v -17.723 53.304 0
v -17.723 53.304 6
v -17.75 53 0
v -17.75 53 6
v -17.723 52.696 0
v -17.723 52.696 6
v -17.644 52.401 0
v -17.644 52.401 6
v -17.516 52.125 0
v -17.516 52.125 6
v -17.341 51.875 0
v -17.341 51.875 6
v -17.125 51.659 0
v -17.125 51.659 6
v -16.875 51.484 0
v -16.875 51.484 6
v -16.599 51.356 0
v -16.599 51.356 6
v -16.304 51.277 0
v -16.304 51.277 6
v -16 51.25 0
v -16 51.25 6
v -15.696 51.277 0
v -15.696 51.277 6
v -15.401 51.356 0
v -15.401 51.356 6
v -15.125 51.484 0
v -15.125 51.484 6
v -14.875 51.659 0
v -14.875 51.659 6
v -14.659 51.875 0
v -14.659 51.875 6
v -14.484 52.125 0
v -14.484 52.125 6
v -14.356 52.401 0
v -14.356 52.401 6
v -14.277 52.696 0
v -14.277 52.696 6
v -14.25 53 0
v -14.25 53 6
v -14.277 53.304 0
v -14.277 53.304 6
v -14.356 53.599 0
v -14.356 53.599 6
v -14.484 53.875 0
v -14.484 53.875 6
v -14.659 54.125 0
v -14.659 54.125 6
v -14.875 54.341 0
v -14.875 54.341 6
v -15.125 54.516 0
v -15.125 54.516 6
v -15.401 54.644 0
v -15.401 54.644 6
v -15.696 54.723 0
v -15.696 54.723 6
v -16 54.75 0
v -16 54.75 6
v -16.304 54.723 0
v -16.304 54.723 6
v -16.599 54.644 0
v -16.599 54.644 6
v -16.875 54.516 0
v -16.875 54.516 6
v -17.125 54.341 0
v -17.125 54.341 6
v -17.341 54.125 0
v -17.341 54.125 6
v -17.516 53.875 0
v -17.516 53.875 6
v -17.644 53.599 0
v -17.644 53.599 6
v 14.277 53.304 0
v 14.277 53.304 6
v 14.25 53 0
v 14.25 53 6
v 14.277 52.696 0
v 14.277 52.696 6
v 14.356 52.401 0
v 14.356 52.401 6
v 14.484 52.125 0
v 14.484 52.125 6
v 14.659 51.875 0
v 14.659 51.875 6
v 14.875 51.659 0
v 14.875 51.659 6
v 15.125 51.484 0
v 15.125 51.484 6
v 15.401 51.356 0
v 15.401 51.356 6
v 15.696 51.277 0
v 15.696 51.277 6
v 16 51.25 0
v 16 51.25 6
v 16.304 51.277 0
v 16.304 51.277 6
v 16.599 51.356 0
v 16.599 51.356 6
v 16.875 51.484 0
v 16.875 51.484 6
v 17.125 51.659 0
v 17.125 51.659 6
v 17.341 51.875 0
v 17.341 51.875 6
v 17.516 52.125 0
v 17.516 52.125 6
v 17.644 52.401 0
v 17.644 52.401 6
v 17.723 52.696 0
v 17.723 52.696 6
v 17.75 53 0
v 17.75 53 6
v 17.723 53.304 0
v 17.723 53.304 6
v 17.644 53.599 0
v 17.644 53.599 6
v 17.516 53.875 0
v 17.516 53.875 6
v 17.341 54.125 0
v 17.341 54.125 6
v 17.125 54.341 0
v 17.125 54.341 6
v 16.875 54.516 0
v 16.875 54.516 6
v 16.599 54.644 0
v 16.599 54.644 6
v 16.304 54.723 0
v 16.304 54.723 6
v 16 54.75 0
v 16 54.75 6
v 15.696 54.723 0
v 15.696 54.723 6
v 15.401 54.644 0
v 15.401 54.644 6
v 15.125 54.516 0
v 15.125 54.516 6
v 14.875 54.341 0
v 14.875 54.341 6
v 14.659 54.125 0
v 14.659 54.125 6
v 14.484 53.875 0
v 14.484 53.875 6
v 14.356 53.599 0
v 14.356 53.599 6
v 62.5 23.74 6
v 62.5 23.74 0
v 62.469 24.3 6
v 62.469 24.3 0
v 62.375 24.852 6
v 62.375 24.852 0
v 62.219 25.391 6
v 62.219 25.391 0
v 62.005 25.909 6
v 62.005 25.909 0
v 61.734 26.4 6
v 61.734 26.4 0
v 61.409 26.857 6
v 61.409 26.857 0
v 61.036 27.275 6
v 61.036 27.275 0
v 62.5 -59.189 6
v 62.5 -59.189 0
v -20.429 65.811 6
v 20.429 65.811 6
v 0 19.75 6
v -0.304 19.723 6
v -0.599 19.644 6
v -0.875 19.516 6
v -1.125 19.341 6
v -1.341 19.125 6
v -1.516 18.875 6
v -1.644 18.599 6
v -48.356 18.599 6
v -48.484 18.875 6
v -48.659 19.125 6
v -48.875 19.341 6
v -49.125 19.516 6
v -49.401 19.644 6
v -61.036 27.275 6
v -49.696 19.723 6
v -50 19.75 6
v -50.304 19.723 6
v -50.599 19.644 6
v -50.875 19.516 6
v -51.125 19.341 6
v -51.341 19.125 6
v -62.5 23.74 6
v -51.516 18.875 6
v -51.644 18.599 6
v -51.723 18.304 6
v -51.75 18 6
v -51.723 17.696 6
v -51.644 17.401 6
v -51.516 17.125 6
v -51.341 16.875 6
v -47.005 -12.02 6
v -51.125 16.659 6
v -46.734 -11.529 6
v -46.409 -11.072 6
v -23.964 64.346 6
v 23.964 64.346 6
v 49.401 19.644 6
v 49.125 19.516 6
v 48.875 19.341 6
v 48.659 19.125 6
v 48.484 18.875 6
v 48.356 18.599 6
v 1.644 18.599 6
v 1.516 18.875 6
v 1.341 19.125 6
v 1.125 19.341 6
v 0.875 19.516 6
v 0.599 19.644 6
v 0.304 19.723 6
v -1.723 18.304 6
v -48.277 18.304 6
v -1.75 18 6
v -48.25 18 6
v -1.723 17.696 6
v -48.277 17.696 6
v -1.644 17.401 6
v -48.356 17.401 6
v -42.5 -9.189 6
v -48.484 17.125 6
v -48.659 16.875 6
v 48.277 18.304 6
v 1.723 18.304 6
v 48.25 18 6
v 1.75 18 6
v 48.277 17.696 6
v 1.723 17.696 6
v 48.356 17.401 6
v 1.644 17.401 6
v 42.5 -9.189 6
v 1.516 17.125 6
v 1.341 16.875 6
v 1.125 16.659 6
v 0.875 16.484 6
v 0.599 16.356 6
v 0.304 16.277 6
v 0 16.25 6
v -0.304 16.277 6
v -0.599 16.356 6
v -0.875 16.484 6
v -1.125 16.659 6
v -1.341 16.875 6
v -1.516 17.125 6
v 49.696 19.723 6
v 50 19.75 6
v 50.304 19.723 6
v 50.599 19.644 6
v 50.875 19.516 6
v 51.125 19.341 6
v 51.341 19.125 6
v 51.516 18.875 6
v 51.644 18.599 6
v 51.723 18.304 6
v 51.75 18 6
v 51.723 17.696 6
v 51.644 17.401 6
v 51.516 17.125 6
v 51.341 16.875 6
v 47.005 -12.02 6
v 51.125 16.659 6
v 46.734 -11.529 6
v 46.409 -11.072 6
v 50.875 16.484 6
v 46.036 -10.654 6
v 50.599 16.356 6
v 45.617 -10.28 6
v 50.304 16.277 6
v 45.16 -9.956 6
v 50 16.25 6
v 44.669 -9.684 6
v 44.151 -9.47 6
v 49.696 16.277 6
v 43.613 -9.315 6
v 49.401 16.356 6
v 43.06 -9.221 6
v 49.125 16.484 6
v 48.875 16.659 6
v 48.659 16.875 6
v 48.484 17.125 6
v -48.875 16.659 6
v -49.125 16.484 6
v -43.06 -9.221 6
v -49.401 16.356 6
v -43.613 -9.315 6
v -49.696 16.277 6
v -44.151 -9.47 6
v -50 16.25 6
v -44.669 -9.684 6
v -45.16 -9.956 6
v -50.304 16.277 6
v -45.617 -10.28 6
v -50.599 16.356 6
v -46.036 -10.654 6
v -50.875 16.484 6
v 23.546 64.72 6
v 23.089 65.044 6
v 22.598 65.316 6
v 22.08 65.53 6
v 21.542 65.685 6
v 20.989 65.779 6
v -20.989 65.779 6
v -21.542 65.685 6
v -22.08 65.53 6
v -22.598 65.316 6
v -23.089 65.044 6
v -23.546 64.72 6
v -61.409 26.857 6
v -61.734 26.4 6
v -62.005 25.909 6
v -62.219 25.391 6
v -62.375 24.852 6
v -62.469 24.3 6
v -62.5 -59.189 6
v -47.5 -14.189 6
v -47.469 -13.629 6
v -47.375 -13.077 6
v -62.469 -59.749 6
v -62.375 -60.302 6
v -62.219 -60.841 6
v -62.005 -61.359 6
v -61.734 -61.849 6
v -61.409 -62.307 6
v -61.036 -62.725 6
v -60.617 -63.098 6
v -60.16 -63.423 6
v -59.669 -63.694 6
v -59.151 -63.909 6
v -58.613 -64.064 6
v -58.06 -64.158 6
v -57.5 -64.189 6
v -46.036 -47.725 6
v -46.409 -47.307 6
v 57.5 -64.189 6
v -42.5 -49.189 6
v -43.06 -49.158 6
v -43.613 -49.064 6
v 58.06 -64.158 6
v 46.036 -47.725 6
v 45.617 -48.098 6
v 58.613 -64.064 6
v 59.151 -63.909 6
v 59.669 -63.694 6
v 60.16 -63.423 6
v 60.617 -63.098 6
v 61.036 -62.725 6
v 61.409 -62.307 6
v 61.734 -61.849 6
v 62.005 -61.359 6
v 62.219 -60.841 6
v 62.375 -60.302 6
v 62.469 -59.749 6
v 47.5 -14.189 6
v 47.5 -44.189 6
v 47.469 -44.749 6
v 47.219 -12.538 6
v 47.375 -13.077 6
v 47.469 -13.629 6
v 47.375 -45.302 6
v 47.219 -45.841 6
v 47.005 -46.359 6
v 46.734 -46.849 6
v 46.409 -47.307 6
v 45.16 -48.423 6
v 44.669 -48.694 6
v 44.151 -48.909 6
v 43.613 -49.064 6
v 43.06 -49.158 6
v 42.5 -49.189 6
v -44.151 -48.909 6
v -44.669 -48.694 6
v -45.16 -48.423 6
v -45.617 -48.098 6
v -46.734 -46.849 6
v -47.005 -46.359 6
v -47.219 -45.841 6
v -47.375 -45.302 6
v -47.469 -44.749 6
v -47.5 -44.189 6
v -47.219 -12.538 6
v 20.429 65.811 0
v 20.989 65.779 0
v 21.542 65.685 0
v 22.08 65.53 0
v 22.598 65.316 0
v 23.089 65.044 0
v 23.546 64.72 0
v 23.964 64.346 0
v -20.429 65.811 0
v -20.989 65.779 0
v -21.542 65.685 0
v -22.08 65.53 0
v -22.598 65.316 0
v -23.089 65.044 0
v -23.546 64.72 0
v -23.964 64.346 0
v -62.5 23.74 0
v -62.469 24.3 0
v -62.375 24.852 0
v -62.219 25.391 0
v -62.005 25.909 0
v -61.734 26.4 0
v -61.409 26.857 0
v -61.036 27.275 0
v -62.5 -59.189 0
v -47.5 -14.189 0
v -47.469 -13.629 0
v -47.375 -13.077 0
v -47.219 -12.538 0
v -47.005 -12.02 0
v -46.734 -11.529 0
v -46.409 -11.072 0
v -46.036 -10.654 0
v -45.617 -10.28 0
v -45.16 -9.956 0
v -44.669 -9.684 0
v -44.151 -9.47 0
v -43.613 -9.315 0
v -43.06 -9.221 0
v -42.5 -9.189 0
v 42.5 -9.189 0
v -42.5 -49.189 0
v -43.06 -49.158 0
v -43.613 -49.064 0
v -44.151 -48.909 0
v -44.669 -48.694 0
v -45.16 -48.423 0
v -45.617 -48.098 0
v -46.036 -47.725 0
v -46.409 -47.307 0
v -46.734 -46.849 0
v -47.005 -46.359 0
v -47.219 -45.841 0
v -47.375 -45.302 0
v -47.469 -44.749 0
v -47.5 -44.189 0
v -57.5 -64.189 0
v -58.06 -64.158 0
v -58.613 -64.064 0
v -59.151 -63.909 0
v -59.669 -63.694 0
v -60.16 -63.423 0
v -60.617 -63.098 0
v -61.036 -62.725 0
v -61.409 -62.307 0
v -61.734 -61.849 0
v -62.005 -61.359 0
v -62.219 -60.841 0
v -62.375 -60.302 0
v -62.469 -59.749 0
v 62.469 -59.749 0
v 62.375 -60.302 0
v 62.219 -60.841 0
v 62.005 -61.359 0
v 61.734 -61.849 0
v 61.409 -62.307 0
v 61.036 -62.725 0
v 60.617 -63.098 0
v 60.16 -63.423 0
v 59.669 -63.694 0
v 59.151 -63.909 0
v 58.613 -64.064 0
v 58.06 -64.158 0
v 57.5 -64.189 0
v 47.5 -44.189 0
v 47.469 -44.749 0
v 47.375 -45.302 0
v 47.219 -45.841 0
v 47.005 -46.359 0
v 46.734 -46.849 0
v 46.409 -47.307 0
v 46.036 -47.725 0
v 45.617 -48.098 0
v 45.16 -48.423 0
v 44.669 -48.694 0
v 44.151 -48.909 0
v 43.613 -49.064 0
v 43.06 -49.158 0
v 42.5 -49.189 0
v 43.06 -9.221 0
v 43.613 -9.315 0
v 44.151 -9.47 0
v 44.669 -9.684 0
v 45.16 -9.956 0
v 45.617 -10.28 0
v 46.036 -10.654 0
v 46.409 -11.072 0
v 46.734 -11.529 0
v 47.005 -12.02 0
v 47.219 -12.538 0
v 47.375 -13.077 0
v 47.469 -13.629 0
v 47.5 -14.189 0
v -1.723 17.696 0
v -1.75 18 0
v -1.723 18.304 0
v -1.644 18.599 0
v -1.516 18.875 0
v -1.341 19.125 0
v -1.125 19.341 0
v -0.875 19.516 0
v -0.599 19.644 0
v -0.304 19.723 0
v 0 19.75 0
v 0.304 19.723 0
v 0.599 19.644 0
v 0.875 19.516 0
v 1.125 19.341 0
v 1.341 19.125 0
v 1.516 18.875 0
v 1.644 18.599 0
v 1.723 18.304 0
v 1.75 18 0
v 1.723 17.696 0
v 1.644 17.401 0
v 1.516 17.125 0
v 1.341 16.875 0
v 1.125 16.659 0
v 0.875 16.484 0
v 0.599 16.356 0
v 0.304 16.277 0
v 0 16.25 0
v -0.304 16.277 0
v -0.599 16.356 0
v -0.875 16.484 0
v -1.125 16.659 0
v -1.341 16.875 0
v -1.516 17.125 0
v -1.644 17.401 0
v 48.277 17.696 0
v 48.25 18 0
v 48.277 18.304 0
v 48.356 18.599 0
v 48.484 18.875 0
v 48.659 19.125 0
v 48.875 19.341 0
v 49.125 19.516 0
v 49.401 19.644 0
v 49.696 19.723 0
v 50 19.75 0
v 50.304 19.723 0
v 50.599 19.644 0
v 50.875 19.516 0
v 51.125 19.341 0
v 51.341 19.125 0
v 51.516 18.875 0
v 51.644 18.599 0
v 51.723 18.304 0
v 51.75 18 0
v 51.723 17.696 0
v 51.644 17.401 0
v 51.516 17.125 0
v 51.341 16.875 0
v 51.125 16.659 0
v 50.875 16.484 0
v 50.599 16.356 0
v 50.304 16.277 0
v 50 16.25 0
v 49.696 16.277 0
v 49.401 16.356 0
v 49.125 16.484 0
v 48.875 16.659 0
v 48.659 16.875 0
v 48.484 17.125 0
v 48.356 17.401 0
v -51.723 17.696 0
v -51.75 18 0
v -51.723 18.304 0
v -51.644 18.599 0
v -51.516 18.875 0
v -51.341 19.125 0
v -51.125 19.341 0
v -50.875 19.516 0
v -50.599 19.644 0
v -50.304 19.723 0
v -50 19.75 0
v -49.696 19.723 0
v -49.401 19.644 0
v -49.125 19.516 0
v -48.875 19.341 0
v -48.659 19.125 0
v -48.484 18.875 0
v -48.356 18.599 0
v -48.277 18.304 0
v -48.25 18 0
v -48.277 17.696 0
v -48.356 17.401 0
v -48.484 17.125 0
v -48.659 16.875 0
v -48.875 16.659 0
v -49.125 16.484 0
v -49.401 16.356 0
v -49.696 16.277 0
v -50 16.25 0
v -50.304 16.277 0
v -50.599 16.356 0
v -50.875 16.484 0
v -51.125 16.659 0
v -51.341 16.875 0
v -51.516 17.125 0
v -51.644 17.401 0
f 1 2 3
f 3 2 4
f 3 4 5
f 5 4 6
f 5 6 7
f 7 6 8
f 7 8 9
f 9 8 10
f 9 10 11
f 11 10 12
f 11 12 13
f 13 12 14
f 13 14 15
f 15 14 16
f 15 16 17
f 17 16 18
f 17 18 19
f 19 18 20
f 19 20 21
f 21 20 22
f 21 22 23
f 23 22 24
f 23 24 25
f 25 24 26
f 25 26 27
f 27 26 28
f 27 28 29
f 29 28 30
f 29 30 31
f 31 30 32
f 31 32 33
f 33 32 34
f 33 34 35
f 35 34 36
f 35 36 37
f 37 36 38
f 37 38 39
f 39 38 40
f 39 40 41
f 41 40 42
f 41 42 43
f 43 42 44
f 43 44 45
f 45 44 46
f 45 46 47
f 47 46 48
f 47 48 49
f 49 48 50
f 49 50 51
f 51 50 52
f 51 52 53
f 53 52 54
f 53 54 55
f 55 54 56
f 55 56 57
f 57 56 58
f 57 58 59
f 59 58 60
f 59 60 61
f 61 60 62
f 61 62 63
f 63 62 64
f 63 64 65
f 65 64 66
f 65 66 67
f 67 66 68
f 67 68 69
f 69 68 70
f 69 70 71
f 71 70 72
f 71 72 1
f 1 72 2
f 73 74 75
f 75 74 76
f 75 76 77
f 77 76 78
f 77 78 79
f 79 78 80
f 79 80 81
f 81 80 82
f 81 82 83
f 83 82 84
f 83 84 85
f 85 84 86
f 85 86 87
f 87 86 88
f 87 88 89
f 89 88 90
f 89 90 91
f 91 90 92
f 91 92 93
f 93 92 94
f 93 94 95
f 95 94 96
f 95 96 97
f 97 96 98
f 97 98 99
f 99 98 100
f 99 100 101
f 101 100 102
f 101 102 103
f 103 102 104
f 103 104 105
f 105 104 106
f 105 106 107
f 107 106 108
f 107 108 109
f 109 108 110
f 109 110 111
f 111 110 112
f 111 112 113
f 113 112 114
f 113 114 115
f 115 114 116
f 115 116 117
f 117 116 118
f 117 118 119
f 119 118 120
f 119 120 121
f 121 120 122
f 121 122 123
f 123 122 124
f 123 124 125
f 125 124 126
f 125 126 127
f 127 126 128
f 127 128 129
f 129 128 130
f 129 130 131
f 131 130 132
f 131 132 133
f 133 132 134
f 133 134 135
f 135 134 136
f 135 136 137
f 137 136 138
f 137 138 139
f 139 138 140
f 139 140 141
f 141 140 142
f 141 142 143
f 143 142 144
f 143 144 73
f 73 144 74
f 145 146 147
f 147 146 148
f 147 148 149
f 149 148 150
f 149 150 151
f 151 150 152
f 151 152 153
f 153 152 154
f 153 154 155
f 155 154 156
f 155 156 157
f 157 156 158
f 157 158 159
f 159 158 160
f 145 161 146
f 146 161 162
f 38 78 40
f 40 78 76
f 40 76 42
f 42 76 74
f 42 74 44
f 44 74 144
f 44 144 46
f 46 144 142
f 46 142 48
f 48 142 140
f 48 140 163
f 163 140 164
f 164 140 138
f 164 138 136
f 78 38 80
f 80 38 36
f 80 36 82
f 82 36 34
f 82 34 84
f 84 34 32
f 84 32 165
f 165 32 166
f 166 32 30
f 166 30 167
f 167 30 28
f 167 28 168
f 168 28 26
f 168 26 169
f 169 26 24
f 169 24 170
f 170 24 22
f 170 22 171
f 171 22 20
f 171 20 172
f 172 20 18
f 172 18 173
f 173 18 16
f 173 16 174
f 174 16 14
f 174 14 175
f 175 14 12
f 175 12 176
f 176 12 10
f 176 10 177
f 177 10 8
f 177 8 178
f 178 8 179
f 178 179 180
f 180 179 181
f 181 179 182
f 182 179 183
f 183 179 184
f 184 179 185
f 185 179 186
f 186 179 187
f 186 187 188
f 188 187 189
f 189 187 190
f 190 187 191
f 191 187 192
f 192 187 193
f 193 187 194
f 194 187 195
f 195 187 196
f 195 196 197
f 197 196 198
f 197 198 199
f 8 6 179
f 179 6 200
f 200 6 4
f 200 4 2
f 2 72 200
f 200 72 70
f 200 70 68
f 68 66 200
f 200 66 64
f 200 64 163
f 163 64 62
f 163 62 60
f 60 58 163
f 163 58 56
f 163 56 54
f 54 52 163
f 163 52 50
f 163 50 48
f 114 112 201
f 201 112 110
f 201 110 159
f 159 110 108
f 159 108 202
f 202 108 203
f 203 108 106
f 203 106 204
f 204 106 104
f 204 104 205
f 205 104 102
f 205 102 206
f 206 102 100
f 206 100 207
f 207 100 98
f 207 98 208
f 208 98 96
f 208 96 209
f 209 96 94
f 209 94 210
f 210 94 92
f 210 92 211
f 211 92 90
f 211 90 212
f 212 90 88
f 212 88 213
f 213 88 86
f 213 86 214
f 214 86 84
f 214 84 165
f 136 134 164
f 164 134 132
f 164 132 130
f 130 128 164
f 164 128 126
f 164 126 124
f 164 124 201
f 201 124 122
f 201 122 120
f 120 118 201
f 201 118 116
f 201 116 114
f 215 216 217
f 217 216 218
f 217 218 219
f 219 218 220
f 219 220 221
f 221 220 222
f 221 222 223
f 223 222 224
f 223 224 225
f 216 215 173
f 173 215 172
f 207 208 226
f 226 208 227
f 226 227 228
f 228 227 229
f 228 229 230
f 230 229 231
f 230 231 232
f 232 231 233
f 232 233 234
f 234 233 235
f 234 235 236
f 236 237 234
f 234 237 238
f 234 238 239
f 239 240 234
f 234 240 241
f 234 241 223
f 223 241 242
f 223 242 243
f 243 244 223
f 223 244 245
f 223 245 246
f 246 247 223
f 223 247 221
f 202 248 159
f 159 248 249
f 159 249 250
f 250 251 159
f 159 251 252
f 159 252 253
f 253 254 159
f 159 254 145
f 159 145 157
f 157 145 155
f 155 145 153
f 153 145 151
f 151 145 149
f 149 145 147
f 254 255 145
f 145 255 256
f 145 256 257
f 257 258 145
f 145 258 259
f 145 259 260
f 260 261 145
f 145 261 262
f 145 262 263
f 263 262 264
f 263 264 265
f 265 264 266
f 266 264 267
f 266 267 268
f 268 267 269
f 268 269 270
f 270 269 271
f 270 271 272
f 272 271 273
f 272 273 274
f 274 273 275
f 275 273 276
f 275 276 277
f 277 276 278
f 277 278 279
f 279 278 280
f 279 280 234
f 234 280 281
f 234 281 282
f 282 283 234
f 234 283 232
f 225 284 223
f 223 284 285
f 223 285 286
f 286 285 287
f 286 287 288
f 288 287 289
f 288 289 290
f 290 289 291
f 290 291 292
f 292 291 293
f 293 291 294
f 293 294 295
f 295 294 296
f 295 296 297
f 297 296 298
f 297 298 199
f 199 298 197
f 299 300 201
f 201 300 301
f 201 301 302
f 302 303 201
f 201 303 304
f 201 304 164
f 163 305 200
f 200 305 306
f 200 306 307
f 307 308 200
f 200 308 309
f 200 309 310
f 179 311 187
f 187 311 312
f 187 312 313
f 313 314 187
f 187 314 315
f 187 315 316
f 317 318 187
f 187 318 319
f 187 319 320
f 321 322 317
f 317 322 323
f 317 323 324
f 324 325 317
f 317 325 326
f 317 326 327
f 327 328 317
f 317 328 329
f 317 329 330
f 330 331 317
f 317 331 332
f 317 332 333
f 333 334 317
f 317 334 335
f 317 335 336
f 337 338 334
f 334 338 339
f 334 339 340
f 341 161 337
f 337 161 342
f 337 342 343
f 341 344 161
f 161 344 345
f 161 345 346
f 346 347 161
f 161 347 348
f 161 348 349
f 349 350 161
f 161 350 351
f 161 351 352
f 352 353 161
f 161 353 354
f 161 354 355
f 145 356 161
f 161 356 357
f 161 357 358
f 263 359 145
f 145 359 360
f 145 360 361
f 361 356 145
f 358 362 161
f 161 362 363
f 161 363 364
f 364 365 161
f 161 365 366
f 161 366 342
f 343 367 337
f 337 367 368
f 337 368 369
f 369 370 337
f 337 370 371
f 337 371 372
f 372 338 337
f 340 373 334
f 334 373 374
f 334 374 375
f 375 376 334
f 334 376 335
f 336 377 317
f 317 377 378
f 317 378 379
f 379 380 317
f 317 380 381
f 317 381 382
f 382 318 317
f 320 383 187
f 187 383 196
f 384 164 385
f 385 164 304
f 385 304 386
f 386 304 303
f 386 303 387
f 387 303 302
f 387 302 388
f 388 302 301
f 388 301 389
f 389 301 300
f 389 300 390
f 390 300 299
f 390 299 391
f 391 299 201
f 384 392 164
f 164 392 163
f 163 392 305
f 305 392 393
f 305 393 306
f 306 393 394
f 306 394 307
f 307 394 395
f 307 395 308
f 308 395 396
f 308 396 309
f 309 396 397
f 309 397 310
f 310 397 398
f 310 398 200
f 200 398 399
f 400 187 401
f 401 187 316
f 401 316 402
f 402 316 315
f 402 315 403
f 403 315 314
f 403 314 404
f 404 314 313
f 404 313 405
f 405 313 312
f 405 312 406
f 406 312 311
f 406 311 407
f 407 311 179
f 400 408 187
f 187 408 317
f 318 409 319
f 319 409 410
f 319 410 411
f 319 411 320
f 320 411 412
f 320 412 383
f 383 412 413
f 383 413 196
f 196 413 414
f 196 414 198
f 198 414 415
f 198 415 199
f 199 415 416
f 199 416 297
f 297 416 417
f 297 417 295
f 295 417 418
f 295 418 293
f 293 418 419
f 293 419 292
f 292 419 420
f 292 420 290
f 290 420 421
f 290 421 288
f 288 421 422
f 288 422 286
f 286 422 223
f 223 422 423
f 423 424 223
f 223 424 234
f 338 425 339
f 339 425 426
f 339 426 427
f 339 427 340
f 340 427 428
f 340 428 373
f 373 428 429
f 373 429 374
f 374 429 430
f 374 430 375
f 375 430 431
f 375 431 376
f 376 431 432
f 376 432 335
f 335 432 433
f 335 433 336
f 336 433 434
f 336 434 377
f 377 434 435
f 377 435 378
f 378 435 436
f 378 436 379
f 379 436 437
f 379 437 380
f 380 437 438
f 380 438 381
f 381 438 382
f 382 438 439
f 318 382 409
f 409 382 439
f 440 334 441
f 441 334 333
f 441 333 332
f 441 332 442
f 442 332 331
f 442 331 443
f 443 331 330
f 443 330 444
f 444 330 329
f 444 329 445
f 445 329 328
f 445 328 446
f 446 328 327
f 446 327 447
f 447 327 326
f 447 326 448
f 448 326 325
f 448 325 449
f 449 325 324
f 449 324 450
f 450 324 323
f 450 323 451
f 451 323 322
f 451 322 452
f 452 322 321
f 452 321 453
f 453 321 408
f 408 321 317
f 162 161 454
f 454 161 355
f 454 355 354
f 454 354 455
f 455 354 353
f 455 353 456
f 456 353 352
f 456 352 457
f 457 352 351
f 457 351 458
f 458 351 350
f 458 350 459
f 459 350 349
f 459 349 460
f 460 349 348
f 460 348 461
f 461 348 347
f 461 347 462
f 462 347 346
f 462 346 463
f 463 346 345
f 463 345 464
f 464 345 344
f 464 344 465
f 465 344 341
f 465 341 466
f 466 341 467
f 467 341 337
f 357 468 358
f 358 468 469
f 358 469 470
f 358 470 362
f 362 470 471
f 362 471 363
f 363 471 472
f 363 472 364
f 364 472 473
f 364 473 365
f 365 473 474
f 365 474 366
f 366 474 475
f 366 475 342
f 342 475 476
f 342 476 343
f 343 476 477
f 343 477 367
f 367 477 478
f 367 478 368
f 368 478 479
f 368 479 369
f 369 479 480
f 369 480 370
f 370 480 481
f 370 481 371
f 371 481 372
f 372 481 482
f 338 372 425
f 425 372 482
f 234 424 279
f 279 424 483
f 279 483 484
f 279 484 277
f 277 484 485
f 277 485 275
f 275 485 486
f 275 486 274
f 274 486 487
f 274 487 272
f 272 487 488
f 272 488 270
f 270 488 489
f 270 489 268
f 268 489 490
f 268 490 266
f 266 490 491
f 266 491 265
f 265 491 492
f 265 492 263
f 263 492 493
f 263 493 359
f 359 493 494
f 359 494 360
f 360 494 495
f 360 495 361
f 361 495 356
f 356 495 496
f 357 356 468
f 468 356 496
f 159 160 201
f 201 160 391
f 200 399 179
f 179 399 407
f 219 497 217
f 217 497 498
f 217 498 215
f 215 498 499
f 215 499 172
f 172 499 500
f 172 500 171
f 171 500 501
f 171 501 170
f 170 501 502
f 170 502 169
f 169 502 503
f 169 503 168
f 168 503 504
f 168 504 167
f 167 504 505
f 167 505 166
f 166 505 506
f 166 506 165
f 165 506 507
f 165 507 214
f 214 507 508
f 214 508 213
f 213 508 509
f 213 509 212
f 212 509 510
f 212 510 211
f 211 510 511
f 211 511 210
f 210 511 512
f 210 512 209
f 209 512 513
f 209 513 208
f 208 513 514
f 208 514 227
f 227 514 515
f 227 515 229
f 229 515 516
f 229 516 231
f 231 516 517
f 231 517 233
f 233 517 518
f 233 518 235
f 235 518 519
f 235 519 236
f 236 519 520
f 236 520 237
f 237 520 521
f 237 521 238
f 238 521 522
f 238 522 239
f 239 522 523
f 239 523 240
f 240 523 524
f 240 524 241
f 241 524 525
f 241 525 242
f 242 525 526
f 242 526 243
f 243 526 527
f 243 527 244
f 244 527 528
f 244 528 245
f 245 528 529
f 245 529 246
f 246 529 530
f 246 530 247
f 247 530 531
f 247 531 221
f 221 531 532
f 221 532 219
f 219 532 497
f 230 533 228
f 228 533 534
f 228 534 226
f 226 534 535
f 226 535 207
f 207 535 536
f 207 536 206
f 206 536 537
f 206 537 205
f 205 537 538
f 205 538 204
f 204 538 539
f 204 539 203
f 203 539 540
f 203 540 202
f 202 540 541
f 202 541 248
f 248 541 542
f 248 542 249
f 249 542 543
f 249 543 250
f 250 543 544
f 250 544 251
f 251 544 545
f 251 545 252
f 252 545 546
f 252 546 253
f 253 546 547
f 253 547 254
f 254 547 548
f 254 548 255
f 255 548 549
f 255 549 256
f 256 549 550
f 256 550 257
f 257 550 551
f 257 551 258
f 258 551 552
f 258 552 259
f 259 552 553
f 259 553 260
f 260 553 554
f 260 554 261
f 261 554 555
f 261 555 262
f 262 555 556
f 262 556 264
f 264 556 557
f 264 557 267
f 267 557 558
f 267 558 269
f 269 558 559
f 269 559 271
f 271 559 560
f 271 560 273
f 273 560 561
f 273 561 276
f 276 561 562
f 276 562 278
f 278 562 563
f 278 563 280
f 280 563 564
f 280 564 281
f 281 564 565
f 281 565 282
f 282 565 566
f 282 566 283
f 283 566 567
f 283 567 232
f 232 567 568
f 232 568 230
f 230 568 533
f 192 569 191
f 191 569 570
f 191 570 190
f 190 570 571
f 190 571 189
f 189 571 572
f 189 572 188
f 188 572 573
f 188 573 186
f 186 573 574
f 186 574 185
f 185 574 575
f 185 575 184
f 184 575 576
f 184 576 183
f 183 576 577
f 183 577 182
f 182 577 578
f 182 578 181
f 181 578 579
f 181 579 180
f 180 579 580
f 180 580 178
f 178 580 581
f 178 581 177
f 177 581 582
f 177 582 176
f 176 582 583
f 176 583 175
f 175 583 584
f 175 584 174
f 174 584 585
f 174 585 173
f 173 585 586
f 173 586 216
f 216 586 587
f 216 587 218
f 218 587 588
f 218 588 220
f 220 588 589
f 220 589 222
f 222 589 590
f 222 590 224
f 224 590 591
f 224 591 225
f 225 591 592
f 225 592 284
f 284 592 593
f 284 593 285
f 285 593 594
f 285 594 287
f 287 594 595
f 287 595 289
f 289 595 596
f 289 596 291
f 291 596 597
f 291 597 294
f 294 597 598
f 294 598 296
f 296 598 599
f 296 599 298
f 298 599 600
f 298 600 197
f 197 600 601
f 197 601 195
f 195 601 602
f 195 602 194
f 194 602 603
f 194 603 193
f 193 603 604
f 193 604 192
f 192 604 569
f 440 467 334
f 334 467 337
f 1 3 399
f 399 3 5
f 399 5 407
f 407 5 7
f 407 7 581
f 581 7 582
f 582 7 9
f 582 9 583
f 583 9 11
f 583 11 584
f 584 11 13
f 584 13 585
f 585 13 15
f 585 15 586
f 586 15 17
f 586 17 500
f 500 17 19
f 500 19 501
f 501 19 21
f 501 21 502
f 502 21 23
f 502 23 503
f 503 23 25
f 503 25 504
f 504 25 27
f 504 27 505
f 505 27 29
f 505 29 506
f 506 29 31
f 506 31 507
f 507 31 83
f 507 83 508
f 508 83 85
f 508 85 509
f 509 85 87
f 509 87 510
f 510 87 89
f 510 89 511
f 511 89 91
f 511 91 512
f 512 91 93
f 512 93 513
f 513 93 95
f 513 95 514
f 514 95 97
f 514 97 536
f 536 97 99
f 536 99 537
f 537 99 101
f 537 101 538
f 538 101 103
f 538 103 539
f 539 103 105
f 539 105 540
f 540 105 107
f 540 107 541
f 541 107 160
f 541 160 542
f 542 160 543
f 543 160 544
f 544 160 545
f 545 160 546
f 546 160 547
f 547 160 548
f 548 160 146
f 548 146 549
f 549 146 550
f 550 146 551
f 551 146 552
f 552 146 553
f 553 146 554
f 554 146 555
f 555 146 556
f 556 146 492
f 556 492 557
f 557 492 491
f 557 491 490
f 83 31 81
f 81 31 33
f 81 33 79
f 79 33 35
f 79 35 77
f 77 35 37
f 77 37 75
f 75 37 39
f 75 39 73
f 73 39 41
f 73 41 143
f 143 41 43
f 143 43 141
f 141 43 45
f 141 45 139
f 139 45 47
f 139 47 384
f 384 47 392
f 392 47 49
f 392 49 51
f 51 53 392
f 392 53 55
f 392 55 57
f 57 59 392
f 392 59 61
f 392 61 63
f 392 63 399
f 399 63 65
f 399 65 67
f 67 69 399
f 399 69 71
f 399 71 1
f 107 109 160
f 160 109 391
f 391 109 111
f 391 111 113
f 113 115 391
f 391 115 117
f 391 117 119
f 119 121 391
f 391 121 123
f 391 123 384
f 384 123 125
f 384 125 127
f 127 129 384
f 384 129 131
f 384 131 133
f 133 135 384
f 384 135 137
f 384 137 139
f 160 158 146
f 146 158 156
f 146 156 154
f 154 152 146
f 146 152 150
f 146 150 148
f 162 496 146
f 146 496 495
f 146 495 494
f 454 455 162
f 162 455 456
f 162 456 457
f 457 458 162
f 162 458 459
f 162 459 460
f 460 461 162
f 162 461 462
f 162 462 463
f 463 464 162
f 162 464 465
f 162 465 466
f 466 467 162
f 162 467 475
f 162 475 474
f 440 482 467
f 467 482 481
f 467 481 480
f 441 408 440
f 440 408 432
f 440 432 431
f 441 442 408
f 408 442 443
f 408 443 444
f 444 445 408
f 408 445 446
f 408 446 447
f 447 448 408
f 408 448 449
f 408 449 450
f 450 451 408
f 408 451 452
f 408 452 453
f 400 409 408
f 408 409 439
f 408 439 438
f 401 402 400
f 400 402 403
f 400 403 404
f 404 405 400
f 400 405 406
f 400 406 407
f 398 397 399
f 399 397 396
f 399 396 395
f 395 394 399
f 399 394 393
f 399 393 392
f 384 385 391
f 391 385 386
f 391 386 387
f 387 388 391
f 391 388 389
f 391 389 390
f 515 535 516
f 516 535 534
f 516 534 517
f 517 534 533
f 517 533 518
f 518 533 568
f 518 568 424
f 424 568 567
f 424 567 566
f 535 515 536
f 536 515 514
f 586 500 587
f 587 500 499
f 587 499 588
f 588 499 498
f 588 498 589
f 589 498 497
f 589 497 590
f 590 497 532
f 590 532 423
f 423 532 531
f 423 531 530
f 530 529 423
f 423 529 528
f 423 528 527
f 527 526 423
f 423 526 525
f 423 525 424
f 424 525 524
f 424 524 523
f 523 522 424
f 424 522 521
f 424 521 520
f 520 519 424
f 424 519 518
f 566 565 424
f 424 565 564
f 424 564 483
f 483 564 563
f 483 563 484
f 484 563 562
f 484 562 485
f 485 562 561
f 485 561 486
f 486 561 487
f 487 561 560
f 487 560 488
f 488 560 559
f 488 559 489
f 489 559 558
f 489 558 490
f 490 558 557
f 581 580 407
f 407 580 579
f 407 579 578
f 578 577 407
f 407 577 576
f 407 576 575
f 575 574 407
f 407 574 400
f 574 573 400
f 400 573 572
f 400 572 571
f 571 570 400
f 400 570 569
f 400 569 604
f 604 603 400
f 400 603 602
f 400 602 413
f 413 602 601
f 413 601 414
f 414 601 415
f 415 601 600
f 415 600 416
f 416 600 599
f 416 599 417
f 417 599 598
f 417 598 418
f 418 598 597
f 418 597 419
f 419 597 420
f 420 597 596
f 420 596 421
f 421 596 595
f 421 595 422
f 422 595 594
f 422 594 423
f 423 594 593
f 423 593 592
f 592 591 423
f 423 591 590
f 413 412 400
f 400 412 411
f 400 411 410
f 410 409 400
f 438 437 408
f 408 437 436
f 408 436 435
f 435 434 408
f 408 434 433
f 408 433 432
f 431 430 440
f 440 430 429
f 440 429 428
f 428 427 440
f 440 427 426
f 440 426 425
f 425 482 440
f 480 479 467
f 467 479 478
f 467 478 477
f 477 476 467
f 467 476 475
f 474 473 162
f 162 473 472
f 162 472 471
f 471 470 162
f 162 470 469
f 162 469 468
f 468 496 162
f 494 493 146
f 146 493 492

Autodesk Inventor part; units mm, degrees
ref_plane "YZ Plane" through (0, 0, 0) normal (1, 0, 0) x (0, 1, 0)
ref_plane "XZ Plane" through (0, 0, 0) normal (0, 1, 0) x (-1, 0, 0)
ref_plane "XY Plane" through (0, 0, 0) normal (0, 0, 1) x (1, 0, 0)
sketch "Sketch1" plane through (0, 0, 0) normal (0, 0, 1) x (1, 0, 0)
  line L0 (-62.5, 65.8108) -> (62.5, 65.8108)
  line L1 (62.5, 65.8108) -> (62.5, -64.1892)
  line L2 (62.5, -64.1892) -> (-62.5, -64.1892)
  line L3 (-62.5, -64.1892) -> (-62.5, 65.8108)
  line L4 (-47.5, -9.1892) -> (47.5, -9.1892)
  line L5 (47.5, -9.1892) -> (47.5, -49.1892)
  line L6 (47.5, -49.1892) -> (-47.5, -49.1892)
  line L7 (-47.5, -49.1892) -> (-47.5, -9.1892)
  line L8 (-62.5, 5.8108) -> (62.5, 5.8108)
  point P0 (0, 0)
  point P1 (-50, 18)
  point P2 (50, 18)
  point P3 (0, 18)
  dimension "d0" = 125
  dimension "d1" = 62.5
  dimension "d2" = 60
  dimension "d3" = 15
  dimension "d4" = 40
  dimension "d5" = 15
  dimension "d6" = 15
  dimension "d7" = 15
  dimension "d8" = 100
  dimension "d9" = 12.5
  dimension "d24" = 50
extrude "Extrusion1" add sketch "Sketch1" along normal blind 6
hole "Hole1" at (-50, 18, 0) at (50, 18, 0) at (0, 18, 0) direction (0, 0, 1) diameter 3.5 end through all
chamfer "Chamfer1" distance 40 angle 45 2 edges at (-62.5, 65.8108, 3) (62.5, 65.8108, 3)
fillet "Fillet1" radius 5 6 edges at (47.5, -9.1892, 3) (47.5, -49.1892, 3) (62.5, -64.1892, 3) (-62.5, -64.1892, 3) (-47.5, -49.1892, 3) (-47.5, -9.1892, 3)
fillet "Fillet2" radius 5 4 edges at (-62.5, 25.8108, 3) (-22.5, 65.8108, 3) (22.5, 65.8108, 3) (62.5, 25.8108, 3)
sketch "Sketch2" plane through (0, 0, 6) normal (0, 0, 1) x (1, 0, 0)
  circle A0 centre (0, 18) radius 1.75 projected
  circle A1 centre (50, 18) radius 1.75 projected
  circle A2 centre (-50, 18) radius 1.75 projected
  arc A3 (62.5, 23.7397) -> (61.0355, 27.2753) centre (57.5, 23.7397) ccw projected
  line L0 (23.9645, 64.3463) -> (61.0355, 27.2753) projected
  arc A4 (23.9645, 64.3463) -> (20.4289, 65.8108) centre (20.4289, 60.8108) ccw projected
  line L1 (20.4289, 65.8108) -> (-20.4289, 65.8108) projected
  arc A5 (-20.4289, 65.8108) -> (-23.9645, 64.3463) centre (-20.4289, 60.8108) ccw projected
  line L2 (-61.0355, 27.2753) -> (-23.9645, 64.3463) projected
  arc A6 (-61.0355, 27.2753) -> (-62.5, 23.7397) centre (-57.5, 23.7397) ccw projected
  line L3 (-62.5, 23.7397) -> (-62.5, -59.1892) projected
  arc A7 (-62.5, -59.1892) -> (-57.5, -64.1892) centre (-57.5, -59.1892) ccw projected
  line L4 (-57.5, -64.1892) -> (57.5, -64.1892) projected
  arc A8 (57.5, -64.1892) -> (62.5, -59.1892) centre (57.5, -59.1892) ccw projected
  line L5 (62.5, -59.1892) -> (62.5, 23.7397) projected
  line L6 (-42.5, -9.1892) -> (42.5, -9.1892) projected
  arc A9 (47.5, -14.1892) -> (42.5, -9.1892) centre (42.5, -14.1892) ccw projected
  line L7 (47.5, -14.1892) -> (47.5, -44.1892) projected
  arc A10 (42.5, -49.1892) -> (47.5, -44.1892) centre (42.5, -44.1892) ccw projected
  line L8 (42.5, -49.1892) -> (-42.5, -49.1892) projected
  arc A11 (-47.5, -44.1892) -> (-42.5, -49.1892) centre (-42.5, -44.1892) ccw projected
  line L9 (-47.5, -44.1892) -> (-47.5, -14.1892) projected
  arc A12 (-42.5, -9.1892) -> (-47.5, -14.1892) centre (-42.5, -14.1892) ccw projected
  point P0 (0, 0)
  point P1 (16, 53)
  point P2 (-16, 53)
  dimension "d25" = 16
  dimension "d26" = 16
  dimension "d27" = 35
hole "Hole2" at (16, 53, 6) at (-16, 53, 6) direction (0, 0, -1) diameter 3.5 end through all
equation "\"d1\" = 0.5 * d0"
equation "\"d5\" = d3"
equation "\"d6\" = d3"
equation "\"d7\" = d5"
equation "\"d9\" = -0.5 * d8 + 0.5 * d0"
equation "\"d24\" = 0.5 * d8"
equation "\"d26\" = d25"
properties part number "3DP_PLA_Handle"
